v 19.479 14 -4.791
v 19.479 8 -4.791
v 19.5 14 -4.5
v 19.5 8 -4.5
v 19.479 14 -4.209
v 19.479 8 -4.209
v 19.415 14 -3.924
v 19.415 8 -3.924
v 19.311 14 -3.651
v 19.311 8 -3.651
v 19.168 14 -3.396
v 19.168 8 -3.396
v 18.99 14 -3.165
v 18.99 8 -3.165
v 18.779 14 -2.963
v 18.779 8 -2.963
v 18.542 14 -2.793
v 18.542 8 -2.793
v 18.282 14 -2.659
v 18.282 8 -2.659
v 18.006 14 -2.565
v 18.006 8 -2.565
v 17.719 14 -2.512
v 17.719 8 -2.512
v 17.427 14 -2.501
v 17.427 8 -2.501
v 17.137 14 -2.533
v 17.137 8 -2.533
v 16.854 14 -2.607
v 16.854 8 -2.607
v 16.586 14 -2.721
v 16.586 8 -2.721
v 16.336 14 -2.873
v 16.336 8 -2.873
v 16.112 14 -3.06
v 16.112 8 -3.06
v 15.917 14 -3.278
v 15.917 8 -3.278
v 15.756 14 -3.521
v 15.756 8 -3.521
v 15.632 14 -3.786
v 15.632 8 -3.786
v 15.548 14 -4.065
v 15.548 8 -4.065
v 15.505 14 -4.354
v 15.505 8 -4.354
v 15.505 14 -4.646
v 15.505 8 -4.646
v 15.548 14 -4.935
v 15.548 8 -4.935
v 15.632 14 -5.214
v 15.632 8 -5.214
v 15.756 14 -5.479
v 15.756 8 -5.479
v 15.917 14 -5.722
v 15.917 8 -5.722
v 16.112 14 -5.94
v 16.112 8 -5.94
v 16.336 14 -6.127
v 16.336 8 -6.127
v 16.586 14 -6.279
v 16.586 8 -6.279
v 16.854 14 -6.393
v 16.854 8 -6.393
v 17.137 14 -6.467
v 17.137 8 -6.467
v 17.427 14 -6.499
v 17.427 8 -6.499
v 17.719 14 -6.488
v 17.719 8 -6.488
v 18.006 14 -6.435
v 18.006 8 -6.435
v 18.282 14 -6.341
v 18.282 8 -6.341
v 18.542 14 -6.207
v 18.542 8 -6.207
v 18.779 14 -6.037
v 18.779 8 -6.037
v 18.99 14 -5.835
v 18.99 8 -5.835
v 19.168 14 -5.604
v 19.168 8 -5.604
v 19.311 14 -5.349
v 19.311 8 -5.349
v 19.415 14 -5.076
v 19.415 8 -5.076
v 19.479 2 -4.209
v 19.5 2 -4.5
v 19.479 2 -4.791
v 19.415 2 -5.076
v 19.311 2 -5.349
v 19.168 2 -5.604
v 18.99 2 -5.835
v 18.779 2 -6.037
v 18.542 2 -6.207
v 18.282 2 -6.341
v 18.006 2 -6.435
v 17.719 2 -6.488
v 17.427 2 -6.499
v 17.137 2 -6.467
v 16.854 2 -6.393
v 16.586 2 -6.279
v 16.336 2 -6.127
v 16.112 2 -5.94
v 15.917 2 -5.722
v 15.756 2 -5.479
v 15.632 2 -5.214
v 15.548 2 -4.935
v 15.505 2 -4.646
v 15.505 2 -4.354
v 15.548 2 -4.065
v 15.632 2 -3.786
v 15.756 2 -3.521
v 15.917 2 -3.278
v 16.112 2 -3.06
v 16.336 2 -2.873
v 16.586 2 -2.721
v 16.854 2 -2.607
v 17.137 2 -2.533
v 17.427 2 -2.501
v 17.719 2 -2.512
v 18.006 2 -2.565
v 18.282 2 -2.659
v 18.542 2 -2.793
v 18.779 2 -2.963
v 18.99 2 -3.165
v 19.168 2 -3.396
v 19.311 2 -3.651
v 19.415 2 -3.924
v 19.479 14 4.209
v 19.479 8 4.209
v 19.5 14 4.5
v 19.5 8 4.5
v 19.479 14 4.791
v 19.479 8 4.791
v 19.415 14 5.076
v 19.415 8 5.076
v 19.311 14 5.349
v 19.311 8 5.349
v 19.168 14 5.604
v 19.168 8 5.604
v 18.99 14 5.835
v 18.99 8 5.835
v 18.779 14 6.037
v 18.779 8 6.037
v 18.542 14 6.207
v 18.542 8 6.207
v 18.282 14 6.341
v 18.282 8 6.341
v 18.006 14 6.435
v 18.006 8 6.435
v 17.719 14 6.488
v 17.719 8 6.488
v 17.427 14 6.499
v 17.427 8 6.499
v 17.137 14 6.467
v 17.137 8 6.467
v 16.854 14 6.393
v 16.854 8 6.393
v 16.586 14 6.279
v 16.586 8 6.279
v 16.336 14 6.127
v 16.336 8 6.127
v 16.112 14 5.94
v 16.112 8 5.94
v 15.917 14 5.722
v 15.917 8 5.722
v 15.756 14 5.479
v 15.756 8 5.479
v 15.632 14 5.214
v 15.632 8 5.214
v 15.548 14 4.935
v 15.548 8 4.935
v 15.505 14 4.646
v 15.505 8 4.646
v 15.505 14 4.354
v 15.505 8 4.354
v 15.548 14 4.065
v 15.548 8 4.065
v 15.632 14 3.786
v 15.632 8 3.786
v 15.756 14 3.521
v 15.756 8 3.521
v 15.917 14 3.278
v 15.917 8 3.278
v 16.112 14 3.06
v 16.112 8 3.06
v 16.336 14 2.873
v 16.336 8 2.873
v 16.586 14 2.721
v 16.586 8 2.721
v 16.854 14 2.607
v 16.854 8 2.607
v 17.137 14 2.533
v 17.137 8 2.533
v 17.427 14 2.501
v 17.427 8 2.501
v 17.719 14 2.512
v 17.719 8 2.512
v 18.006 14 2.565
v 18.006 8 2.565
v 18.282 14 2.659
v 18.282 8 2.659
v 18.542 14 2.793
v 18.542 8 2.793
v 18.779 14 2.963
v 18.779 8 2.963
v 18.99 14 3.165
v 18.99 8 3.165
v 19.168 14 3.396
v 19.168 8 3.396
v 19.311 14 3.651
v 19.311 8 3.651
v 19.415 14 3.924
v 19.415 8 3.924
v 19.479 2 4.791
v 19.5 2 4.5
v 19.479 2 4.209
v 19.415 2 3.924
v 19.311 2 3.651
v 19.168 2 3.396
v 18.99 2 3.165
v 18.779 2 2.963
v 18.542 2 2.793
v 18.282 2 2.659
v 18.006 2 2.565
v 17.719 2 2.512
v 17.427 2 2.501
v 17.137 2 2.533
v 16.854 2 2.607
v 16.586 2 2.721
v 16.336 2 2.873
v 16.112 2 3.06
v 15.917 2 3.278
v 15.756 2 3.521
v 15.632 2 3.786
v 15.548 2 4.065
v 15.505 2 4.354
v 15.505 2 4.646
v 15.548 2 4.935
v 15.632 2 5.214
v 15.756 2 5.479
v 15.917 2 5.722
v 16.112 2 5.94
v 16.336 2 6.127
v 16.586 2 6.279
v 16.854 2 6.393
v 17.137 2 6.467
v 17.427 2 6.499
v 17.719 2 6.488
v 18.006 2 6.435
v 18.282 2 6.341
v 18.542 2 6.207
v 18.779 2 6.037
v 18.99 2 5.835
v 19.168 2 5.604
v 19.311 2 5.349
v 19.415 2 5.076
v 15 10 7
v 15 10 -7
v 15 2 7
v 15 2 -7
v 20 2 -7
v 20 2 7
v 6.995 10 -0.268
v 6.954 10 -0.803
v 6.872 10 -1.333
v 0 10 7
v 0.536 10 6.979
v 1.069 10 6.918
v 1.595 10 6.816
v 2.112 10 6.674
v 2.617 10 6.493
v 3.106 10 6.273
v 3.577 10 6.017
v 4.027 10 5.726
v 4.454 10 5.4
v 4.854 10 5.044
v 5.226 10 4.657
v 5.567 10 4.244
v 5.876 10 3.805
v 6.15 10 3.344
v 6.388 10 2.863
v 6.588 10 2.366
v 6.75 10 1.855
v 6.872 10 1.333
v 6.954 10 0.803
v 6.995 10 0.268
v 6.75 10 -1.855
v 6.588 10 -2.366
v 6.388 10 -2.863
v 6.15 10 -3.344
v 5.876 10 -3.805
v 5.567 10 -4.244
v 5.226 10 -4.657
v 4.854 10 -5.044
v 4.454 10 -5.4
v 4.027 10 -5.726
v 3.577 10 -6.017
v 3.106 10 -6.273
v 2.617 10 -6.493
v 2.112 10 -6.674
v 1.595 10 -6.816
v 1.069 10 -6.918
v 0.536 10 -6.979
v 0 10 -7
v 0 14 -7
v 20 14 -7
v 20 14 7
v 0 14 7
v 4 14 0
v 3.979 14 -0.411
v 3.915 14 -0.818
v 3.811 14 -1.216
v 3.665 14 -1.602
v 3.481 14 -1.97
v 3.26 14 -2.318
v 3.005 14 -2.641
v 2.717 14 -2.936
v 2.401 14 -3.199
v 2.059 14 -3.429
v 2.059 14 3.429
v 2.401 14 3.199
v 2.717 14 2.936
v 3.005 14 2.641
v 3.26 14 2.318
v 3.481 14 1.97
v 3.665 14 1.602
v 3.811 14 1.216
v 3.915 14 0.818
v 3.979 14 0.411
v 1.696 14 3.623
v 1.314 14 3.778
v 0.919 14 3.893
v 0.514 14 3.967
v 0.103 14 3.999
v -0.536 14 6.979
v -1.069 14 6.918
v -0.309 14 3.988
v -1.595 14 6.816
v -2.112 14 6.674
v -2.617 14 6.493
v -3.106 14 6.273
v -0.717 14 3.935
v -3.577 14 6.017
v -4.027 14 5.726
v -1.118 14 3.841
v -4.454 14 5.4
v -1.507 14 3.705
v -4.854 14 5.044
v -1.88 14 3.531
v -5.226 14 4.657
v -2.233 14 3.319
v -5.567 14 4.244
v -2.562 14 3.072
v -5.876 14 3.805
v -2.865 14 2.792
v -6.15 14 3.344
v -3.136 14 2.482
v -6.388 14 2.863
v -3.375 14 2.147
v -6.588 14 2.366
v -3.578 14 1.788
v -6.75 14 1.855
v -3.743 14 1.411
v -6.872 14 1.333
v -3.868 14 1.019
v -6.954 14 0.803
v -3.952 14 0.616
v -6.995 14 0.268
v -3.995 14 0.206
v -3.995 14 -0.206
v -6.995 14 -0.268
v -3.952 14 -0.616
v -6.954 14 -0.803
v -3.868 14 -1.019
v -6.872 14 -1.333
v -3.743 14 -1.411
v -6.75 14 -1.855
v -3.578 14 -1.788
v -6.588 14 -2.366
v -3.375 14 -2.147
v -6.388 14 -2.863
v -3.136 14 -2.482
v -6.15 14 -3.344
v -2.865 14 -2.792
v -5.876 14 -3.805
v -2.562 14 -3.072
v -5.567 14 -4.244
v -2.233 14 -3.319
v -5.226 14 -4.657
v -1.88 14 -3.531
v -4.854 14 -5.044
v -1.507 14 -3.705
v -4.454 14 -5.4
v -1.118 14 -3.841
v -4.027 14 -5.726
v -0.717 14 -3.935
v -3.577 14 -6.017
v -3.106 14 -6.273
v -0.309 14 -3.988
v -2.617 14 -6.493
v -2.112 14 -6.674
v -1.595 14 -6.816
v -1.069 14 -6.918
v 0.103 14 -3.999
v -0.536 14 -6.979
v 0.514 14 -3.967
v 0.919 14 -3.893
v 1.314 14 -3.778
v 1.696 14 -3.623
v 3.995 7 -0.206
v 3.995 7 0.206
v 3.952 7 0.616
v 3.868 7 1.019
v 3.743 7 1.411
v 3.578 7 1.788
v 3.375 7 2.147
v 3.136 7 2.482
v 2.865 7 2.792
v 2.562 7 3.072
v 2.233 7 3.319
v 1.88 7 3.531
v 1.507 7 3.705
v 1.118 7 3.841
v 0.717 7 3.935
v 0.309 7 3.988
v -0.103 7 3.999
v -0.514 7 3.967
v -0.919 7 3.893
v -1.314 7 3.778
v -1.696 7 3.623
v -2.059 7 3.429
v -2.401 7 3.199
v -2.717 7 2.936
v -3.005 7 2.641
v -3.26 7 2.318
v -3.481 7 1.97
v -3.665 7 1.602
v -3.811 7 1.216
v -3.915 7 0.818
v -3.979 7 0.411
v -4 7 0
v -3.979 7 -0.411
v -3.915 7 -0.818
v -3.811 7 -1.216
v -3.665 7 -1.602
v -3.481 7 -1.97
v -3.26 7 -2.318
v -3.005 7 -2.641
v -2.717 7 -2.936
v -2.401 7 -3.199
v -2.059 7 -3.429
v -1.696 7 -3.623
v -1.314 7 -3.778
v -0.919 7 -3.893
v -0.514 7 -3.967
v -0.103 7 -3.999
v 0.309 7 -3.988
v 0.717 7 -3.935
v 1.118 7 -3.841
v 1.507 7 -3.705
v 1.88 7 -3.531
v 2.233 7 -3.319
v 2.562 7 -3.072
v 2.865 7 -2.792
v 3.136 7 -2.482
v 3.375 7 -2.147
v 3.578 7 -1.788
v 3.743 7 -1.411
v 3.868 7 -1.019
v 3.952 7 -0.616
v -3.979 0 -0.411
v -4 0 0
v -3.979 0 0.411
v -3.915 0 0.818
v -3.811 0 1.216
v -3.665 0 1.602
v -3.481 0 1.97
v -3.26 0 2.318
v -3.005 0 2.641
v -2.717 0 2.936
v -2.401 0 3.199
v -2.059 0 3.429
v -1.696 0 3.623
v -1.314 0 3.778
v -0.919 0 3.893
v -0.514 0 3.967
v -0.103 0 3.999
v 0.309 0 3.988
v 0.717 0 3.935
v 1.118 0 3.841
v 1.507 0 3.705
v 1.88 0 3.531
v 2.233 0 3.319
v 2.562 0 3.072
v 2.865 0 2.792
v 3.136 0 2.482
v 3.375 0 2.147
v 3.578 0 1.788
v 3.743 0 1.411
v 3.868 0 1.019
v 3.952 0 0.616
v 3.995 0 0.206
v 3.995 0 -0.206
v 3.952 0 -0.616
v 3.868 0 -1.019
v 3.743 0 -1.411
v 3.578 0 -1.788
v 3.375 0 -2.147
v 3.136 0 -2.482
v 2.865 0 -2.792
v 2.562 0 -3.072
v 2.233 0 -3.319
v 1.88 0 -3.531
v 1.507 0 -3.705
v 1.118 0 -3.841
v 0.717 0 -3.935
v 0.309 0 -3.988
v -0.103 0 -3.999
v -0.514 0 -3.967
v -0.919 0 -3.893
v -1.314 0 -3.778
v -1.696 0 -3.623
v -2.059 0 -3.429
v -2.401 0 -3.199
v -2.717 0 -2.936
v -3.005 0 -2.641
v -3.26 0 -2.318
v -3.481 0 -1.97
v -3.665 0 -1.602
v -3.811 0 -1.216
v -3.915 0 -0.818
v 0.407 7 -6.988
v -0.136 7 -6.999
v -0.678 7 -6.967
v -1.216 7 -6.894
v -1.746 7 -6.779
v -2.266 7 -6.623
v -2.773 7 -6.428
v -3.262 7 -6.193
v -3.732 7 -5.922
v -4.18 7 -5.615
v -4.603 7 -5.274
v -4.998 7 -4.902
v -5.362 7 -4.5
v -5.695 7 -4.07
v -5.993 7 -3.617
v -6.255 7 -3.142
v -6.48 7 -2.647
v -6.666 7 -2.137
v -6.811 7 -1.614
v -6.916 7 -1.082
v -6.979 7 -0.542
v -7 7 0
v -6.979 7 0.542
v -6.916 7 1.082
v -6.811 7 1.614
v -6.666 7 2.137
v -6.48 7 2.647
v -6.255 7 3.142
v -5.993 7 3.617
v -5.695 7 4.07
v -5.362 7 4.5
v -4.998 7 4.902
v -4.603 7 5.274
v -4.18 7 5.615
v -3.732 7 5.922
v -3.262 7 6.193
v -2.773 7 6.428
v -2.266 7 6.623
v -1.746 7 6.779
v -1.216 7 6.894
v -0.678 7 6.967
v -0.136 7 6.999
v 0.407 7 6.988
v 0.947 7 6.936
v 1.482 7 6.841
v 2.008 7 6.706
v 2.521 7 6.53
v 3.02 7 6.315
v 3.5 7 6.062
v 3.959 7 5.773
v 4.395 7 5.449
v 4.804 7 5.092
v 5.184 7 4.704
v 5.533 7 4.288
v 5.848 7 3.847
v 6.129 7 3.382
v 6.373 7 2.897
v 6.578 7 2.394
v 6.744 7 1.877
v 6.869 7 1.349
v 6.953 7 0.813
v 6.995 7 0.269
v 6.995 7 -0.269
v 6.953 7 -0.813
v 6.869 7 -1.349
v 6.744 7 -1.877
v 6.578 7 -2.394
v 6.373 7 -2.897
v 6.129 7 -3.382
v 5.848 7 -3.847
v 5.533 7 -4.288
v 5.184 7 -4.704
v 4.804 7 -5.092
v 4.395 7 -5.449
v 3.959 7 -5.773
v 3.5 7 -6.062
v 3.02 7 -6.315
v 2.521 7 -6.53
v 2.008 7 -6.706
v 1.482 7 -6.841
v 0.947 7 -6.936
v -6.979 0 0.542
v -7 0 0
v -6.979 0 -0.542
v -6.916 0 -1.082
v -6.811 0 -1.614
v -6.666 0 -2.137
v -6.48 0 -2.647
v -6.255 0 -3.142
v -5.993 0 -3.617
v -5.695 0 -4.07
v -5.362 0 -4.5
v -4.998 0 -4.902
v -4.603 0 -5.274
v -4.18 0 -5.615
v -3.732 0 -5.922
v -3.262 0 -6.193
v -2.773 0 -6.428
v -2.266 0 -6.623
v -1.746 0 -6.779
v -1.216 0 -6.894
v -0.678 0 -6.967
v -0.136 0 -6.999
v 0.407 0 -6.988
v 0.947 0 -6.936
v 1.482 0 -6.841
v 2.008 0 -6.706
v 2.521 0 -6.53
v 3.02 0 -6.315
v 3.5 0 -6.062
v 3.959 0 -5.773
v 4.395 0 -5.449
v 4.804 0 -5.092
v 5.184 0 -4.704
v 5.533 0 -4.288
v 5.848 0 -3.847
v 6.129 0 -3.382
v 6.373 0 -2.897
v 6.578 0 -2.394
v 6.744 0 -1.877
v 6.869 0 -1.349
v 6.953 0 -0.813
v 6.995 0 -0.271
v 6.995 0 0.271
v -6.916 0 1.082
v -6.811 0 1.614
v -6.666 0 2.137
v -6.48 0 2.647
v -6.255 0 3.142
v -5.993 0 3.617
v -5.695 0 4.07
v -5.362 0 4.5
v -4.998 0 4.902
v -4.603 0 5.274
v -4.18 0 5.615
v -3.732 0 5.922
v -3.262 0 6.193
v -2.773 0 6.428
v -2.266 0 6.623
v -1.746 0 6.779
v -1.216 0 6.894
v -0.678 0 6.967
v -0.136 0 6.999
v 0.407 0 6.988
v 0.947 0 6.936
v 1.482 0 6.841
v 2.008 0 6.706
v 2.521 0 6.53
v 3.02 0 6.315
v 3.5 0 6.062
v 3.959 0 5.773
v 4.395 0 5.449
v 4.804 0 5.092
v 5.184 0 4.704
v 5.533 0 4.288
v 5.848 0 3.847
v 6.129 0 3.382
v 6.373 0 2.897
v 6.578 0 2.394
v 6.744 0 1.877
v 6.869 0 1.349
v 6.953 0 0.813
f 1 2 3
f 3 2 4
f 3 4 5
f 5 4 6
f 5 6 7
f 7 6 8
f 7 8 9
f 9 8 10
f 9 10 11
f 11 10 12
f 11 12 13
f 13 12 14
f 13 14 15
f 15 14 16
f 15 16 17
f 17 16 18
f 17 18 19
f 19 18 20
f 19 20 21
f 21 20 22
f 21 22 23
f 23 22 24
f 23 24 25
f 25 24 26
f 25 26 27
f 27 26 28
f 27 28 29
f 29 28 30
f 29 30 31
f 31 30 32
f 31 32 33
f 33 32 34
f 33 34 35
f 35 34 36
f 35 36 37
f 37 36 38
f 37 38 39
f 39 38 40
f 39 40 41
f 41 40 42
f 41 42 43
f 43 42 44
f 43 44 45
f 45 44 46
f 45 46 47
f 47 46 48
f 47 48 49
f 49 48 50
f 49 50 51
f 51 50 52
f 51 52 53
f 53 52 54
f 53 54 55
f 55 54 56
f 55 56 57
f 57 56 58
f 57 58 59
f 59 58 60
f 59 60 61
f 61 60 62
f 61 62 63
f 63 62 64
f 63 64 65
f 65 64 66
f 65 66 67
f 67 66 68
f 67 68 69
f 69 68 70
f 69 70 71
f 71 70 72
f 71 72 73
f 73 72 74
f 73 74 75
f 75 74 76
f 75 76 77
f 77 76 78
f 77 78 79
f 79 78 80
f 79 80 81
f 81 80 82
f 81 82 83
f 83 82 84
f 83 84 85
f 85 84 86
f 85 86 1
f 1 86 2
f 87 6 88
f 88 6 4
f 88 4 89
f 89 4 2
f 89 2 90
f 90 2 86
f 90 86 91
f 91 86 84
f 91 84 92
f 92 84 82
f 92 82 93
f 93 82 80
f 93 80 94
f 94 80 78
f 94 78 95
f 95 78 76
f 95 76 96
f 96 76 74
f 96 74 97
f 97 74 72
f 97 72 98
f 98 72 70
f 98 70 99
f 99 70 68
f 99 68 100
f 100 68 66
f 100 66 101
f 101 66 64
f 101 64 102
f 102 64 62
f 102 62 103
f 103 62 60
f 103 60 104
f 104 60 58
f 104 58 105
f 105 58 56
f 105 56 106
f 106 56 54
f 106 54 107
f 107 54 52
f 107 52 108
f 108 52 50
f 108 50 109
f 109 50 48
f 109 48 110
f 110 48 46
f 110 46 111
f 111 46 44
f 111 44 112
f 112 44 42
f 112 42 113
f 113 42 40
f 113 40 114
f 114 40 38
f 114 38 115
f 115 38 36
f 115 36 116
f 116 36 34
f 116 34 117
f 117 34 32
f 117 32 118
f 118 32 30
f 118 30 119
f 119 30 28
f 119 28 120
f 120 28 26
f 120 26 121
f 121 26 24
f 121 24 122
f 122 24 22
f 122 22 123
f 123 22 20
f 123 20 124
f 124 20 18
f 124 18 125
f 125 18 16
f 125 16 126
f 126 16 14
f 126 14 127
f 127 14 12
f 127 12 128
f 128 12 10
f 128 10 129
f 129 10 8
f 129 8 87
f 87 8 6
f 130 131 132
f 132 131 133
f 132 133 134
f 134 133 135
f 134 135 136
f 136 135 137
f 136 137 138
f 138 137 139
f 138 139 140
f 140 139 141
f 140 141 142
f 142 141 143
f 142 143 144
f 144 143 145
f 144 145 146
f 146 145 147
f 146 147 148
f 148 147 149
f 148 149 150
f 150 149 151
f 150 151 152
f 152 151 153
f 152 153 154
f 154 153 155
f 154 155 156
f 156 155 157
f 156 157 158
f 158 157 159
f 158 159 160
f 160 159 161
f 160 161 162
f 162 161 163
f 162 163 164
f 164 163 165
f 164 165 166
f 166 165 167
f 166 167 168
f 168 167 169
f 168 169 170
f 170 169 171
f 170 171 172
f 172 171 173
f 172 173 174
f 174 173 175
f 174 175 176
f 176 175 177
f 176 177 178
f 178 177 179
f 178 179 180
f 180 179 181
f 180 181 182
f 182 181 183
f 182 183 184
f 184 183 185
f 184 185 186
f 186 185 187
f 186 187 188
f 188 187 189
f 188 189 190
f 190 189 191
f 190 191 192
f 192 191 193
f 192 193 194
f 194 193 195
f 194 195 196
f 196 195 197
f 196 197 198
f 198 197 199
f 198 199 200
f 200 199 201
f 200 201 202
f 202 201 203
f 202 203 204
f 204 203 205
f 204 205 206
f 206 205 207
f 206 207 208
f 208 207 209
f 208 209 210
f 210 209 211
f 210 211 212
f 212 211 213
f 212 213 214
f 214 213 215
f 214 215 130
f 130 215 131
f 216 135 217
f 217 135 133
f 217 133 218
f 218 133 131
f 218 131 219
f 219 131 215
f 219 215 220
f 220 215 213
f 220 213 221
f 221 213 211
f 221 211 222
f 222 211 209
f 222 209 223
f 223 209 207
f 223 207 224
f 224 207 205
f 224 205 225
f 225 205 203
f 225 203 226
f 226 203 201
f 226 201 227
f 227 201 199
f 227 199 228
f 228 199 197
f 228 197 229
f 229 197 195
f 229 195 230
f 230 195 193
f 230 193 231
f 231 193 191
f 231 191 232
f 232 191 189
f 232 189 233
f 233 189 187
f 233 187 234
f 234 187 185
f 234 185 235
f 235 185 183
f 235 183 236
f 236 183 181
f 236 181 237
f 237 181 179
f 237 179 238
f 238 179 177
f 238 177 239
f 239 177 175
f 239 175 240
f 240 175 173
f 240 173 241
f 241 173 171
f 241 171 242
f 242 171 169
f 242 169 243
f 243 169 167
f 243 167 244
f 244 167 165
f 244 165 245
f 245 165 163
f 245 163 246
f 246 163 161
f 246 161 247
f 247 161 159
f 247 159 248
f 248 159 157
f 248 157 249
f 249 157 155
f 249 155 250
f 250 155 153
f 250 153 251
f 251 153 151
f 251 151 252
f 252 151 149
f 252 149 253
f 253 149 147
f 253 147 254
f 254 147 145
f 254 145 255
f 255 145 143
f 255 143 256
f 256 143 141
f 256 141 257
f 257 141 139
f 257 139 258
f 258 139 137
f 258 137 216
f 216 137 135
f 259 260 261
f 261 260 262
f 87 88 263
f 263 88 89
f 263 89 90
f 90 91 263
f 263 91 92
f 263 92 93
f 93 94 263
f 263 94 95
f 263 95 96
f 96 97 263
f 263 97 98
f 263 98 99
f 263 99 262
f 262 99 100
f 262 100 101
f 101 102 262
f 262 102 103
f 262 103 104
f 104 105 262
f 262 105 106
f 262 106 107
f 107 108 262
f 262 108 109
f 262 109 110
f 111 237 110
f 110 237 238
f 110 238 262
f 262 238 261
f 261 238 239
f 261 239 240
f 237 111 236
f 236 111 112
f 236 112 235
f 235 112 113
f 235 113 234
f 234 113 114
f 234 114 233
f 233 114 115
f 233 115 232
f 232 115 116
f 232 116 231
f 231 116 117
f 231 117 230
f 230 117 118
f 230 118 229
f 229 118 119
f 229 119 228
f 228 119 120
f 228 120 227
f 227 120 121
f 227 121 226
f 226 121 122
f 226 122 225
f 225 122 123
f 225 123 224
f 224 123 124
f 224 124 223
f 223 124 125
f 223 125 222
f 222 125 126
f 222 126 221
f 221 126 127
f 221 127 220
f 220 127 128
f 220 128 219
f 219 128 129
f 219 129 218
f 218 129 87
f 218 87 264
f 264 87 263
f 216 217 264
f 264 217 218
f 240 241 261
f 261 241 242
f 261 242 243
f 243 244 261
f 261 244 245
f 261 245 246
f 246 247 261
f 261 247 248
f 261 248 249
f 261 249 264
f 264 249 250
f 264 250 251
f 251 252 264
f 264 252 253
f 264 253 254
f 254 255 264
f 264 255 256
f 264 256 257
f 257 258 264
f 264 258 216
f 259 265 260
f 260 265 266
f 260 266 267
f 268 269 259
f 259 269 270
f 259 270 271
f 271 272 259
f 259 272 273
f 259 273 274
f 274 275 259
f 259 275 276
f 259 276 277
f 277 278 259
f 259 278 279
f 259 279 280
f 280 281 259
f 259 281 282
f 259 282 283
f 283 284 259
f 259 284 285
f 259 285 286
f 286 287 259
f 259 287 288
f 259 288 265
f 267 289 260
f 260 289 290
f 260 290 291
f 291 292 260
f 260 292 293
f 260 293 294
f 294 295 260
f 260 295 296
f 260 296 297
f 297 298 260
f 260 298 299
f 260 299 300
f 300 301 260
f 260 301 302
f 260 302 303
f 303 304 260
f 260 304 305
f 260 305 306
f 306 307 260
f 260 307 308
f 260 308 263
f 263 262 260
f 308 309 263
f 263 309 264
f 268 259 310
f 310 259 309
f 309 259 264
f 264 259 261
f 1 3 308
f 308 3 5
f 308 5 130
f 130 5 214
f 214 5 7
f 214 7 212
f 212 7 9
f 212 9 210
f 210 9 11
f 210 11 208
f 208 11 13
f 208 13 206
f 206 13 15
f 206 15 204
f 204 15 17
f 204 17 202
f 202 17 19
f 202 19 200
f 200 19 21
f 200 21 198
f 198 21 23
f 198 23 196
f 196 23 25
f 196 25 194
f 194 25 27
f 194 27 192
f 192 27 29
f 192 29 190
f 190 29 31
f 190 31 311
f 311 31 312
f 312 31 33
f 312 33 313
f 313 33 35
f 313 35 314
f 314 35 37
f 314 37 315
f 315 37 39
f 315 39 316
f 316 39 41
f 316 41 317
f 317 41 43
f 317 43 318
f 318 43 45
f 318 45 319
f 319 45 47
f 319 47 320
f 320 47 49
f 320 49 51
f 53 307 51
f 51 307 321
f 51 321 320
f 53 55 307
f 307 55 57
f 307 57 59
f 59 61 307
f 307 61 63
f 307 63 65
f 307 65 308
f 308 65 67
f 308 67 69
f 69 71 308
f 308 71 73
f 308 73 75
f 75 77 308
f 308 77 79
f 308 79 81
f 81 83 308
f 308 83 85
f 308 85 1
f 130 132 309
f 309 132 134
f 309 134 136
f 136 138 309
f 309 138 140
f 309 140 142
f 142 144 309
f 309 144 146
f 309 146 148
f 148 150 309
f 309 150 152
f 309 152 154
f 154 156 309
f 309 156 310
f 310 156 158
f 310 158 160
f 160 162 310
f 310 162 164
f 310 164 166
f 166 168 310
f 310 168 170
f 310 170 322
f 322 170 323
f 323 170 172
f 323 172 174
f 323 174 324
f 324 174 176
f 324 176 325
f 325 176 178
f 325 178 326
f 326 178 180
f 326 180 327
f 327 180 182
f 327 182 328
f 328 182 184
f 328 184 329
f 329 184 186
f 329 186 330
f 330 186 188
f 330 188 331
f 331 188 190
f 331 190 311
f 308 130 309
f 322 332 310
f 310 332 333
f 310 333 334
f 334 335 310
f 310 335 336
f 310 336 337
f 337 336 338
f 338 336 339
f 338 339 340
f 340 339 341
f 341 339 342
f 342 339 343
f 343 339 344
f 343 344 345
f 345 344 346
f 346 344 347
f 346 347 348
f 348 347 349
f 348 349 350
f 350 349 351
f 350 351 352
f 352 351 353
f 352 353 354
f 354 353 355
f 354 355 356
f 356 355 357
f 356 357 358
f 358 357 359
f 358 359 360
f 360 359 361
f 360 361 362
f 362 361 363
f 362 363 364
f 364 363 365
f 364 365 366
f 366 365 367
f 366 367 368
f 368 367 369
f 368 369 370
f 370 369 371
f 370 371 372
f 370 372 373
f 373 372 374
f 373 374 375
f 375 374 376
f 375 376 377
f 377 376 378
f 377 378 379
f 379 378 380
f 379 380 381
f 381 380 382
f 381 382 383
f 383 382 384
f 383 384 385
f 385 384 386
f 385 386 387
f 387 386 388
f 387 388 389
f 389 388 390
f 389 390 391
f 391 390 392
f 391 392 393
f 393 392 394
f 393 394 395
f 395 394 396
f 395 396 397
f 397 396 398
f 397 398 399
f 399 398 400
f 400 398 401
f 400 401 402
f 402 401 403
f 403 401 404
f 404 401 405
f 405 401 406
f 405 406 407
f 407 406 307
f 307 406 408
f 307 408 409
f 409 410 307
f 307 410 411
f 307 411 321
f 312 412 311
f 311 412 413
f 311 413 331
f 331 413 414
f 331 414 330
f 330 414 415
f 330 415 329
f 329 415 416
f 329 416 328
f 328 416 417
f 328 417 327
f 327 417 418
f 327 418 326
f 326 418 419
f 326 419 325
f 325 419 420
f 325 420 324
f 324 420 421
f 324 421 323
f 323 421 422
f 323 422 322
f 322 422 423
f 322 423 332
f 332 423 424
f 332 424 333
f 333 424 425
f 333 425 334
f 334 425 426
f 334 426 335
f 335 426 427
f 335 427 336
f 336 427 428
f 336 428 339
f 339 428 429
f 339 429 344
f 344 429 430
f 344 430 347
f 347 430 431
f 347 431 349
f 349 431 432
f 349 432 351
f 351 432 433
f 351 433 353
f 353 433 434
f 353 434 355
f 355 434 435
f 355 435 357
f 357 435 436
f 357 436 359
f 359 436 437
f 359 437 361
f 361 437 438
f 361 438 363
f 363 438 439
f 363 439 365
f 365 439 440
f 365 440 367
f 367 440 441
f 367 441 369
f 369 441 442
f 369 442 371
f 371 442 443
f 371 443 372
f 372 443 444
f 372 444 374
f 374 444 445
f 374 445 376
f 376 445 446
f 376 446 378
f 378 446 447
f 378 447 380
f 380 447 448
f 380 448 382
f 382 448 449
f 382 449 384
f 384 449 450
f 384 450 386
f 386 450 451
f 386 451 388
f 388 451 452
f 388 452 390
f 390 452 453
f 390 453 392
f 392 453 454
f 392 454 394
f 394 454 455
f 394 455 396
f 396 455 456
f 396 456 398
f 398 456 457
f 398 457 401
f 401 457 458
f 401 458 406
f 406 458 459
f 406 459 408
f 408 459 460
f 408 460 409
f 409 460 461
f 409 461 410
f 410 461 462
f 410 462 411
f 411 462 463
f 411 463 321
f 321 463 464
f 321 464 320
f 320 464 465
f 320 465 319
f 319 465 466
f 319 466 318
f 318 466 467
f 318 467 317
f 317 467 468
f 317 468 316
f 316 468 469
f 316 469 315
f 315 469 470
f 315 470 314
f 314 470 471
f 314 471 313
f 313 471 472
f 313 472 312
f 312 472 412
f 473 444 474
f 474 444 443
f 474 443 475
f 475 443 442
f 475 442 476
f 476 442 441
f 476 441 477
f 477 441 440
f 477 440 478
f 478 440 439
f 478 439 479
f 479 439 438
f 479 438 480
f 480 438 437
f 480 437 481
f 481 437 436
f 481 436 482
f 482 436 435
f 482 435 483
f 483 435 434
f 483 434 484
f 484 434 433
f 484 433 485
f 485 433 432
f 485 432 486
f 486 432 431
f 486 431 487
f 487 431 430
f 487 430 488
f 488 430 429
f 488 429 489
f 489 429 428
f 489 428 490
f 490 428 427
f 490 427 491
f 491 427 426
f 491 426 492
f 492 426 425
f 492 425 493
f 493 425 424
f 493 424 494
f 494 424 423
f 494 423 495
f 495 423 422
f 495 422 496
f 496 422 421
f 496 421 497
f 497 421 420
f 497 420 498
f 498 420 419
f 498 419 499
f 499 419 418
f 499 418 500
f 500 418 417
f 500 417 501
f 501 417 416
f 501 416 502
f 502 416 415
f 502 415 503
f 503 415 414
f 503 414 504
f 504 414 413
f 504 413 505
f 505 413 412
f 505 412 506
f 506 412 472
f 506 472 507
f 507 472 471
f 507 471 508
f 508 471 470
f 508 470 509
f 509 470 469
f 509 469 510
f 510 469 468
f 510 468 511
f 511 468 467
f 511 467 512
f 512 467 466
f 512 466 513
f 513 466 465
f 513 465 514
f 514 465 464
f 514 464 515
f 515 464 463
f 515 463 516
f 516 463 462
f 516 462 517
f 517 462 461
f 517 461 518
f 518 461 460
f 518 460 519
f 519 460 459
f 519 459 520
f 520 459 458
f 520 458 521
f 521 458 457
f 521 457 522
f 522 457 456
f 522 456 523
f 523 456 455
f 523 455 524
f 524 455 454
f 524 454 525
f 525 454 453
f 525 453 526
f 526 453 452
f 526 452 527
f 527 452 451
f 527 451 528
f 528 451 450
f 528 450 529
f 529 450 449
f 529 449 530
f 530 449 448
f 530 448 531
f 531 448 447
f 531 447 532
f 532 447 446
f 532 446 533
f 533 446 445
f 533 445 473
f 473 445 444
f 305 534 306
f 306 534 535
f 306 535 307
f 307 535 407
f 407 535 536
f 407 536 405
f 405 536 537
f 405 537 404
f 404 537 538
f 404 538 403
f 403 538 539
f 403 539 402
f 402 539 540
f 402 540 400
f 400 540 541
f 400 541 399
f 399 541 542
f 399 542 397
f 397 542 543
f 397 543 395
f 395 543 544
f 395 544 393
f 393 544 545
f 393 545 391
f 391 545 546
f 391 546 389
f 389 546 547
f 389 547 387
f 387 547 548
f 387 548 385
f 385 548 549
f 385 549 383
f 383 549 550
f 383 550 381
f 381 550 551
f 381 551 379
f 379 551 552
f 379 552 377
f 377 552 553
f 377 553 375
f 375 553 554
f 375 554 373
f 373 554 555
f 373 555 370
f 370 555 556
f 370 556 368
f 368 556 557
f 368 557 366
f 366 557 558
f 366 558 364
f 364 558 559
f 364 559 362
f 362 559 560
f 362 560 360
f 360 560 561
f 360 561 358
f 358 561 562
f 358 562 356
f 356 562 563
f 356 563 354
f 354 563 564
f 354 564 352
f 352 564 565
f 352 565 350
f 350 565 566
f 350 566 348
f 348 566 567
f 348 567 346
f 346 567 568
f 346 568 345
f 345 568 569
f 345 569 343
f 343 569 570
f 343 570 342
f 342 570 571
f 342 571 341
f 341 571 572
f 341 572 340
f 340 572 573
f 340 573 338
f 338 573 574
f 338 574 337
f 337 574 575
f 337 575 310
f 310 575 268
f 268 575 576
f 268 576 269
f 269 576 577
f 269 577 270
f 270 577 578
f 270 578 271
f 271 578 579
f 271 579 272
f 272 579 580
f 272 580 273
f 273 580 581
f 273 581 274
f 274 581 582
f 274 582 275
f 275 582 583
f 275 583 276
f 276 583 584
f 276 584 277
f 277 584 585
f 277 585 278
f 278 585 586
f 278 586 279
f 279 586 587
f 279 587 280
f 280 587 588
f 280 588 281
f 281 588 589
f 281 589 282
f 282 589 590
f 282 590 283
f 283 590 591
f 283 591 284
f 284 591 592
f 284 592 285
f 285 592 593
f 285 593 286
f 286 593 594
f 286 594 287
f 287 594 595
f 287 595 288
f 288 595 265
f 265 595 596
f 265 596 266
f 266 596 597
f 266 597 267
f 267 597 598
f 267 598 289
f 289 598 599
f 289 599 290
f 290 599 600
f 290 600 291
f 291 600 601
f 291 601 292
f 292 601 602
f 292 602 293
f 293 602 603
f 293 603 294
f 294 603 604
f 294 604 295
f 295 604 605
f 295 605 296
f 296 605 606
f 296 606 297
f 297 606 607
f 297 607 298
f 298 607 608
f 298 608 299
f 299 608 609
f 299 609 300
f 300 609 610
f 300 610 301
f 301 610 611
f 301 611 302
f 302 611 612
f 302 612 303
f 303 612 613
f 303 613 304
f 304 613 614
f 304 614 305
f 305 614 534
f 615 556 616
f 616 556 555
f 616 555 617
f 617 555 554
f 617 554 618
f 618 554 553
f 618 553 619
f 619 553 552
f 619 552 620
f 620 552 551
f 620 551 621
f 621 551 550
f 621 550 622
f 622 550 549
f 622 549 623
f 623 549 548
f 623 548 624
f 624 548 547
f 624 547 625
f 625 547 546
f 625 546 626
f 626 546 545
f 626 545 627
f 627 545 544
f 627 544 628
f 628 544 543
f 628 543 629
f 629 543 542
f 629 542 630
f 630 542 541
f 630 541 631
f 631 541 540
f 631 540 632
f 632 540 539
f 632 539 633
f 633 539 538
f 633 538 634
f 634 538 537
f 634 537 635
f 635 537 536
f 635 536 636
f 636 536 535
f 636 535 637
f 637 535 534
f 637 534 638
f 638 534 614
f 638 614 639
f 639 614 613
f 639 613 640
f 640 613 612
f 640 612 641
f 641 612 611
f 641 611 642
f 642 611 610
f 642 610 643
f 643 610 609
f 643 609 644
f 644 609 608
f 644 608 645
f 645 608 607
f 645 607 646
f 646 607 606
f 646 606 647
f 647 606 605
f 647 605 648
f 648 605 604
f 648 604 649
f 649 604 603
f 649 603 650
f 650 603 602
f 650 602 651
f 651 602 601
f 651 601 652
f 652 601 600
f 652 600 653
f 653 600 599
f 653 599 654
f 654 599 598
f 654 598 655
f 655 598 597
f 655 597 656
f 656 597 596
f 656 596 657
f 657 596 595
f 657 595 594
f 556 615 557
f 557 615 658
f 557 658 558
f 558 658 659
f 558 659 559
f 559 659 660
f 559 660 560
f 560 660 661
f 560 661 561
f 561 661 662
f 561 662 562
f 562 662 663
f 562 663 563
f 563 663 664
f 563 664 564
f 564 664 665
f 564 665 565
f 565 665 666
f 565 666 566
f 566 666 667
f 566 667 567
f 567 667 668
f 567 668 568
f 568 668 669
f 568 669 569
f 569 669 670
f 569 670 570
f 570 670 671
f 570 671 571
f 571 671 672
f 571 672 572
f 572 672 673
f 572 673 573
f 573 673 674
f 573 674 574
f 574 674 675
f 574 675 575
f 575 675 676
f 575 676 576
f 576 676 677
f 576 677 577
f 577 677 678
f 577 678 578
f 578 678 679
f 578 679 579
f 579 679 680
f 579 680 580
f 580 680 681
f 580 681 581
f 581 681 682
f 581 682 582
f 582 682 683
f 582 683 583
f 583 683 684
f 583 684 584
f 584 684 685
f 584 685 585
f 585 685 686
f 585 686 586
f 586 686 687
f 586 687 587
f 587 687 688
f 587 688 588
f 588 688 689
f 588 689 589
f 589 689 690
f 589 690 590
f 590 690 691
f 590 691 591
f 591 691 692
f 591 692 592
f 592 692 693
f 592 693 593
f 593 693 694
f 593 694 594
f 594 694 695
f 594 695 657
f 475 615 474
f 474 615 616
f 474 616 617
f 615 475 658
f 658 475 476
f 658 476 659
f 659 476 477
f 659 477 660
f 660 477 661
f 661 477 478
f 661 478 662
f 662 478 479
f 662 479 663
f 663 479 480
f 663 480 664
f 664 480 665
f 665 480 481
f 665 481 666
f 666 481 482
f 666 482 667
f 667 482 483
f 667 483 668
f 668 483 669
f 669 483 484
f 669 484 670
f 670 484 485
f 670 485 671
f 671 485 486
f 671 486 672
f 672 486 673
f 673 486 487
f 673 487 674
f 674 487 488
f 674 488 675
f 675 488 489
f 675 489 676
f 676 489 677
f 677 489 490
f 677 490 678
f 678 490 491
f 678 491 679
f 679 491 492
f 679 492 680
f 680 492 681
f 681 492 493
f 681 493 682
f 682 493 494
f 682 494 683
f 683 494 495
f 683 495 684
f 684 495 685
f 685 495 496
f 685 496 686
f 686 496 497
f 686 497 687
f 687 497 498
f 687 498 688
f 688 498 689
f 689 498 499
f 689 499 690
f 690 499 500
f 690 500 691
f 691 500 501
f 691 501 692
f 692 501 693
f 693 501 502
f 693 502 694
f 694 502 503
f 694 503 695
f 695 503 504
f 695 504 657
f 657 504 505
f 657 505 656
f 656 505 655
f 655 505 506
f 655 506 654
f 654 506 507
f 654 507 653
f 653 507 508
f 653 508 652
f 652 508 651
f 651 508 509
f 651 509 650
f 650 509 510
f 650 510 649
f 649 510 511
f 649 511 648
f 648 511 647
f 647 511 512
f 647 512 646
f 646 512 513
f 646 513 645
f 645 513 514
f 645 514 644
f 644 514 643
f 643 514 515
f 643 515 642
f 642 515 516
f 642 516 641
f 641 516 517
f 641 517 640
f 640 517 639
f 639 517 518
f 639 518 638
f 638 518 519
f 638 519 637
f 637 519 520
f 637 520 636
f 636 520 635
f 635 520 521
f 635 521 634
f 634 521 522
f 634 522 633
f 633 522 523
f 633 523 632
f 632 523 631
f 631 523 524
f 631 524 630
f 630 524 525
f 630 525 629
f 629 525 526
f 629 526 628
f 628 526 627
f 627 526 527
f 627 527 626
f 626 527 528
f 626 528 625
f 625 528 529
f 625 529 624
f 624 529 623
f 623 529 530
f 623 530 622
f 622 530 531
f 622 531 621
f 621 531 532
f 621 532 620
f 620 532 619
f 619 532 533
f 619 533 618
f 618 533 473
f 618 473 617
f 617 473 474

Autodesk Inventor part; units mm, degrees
ref_plane "YZ Plane" through (0, 0, 0) normal (1, 0, 0) x (0, 1, 0)
ref_plane "XZ Plane" through (0, 0, 0) normal (0, 1, 0) x (-1, 0, 0)
ref_plane "XY Plane" through (0, 0, 0) normal (0, 0, 1) x (1, 0, 0)
sketch "Sketch1" plane through (0, 0, 0) normal (0, 1, 0) x (-1, 0, 0)
  circle A0 centre (0, 0) radius 4
  circle A1 centre (0, 0) radius 7
  dimension "d0" = 8
  dimension "d1" = 14
extrude "Extrusion1" add sketch "Sketch1" along normal blind 10
sketch "Sketch2" plane through (0, 10, 0) normal (0, 1, 0) x (1, 0, 0)
  circle A0 centre (0, 0) radius 7 projected
  line L0 (0, -7) -> (20, -7)
  line L1 (0, 7) -> (20, 7)
  line L2 (20, 7) -> (20, -7)
  circle A1 centre (0, 0) radius 4
  arc A2 (0, 7) -> (0, -7) centre (0, 0) ccw
  dimension "d4" = 20
extrude "Extrusion2" add sketch "Sketch2" along normal blind 4
sketch "Sketch3" plane through (0, 10, 0) normal (0, -1, 0) x (1, 0, 0)
  line L0 (20, 7) -> (20, -7) projected
  line L1 (0, 7) -> (20, 7) projected
  line L2 (20, -7) -> (15, -7)
  line L3 (15, -7) -> (15, 7)
  line L4 (15, 7) -> (20, 7)
  line L5 (20, 7) -> (20, -7)
  point P0 (0, 0)
  dimension "d9" = 5
extrude "Extrusion3" add sketch "Sketch3" along normal blind 8
sketch "Sketch4" plane through (0, 2, 0) normal (0, -1, 0) x (1, 0, 0)
  circle A0 centre (17.5, -4.5) radius 2
  line L0 (20, -7) -> (20, 7) projected
  circle A1 centre (17.5, 4.5) radius 2
  line L1 (20, 7) -> (15, 7) projected
  line L2 (15, -7) -> (20, -7) projected
  point P0 (0, 0)
  dimension "d12" = 4
  dimension "d13" = 2.5
  dimension "d14" = 4
  dimension "d15" = 2.5
  dimension "d16" = 2.5
extrude "Extrusion4" cut sketch "Sketch4" against normal blind 15
properties part number "bedtiedown"
